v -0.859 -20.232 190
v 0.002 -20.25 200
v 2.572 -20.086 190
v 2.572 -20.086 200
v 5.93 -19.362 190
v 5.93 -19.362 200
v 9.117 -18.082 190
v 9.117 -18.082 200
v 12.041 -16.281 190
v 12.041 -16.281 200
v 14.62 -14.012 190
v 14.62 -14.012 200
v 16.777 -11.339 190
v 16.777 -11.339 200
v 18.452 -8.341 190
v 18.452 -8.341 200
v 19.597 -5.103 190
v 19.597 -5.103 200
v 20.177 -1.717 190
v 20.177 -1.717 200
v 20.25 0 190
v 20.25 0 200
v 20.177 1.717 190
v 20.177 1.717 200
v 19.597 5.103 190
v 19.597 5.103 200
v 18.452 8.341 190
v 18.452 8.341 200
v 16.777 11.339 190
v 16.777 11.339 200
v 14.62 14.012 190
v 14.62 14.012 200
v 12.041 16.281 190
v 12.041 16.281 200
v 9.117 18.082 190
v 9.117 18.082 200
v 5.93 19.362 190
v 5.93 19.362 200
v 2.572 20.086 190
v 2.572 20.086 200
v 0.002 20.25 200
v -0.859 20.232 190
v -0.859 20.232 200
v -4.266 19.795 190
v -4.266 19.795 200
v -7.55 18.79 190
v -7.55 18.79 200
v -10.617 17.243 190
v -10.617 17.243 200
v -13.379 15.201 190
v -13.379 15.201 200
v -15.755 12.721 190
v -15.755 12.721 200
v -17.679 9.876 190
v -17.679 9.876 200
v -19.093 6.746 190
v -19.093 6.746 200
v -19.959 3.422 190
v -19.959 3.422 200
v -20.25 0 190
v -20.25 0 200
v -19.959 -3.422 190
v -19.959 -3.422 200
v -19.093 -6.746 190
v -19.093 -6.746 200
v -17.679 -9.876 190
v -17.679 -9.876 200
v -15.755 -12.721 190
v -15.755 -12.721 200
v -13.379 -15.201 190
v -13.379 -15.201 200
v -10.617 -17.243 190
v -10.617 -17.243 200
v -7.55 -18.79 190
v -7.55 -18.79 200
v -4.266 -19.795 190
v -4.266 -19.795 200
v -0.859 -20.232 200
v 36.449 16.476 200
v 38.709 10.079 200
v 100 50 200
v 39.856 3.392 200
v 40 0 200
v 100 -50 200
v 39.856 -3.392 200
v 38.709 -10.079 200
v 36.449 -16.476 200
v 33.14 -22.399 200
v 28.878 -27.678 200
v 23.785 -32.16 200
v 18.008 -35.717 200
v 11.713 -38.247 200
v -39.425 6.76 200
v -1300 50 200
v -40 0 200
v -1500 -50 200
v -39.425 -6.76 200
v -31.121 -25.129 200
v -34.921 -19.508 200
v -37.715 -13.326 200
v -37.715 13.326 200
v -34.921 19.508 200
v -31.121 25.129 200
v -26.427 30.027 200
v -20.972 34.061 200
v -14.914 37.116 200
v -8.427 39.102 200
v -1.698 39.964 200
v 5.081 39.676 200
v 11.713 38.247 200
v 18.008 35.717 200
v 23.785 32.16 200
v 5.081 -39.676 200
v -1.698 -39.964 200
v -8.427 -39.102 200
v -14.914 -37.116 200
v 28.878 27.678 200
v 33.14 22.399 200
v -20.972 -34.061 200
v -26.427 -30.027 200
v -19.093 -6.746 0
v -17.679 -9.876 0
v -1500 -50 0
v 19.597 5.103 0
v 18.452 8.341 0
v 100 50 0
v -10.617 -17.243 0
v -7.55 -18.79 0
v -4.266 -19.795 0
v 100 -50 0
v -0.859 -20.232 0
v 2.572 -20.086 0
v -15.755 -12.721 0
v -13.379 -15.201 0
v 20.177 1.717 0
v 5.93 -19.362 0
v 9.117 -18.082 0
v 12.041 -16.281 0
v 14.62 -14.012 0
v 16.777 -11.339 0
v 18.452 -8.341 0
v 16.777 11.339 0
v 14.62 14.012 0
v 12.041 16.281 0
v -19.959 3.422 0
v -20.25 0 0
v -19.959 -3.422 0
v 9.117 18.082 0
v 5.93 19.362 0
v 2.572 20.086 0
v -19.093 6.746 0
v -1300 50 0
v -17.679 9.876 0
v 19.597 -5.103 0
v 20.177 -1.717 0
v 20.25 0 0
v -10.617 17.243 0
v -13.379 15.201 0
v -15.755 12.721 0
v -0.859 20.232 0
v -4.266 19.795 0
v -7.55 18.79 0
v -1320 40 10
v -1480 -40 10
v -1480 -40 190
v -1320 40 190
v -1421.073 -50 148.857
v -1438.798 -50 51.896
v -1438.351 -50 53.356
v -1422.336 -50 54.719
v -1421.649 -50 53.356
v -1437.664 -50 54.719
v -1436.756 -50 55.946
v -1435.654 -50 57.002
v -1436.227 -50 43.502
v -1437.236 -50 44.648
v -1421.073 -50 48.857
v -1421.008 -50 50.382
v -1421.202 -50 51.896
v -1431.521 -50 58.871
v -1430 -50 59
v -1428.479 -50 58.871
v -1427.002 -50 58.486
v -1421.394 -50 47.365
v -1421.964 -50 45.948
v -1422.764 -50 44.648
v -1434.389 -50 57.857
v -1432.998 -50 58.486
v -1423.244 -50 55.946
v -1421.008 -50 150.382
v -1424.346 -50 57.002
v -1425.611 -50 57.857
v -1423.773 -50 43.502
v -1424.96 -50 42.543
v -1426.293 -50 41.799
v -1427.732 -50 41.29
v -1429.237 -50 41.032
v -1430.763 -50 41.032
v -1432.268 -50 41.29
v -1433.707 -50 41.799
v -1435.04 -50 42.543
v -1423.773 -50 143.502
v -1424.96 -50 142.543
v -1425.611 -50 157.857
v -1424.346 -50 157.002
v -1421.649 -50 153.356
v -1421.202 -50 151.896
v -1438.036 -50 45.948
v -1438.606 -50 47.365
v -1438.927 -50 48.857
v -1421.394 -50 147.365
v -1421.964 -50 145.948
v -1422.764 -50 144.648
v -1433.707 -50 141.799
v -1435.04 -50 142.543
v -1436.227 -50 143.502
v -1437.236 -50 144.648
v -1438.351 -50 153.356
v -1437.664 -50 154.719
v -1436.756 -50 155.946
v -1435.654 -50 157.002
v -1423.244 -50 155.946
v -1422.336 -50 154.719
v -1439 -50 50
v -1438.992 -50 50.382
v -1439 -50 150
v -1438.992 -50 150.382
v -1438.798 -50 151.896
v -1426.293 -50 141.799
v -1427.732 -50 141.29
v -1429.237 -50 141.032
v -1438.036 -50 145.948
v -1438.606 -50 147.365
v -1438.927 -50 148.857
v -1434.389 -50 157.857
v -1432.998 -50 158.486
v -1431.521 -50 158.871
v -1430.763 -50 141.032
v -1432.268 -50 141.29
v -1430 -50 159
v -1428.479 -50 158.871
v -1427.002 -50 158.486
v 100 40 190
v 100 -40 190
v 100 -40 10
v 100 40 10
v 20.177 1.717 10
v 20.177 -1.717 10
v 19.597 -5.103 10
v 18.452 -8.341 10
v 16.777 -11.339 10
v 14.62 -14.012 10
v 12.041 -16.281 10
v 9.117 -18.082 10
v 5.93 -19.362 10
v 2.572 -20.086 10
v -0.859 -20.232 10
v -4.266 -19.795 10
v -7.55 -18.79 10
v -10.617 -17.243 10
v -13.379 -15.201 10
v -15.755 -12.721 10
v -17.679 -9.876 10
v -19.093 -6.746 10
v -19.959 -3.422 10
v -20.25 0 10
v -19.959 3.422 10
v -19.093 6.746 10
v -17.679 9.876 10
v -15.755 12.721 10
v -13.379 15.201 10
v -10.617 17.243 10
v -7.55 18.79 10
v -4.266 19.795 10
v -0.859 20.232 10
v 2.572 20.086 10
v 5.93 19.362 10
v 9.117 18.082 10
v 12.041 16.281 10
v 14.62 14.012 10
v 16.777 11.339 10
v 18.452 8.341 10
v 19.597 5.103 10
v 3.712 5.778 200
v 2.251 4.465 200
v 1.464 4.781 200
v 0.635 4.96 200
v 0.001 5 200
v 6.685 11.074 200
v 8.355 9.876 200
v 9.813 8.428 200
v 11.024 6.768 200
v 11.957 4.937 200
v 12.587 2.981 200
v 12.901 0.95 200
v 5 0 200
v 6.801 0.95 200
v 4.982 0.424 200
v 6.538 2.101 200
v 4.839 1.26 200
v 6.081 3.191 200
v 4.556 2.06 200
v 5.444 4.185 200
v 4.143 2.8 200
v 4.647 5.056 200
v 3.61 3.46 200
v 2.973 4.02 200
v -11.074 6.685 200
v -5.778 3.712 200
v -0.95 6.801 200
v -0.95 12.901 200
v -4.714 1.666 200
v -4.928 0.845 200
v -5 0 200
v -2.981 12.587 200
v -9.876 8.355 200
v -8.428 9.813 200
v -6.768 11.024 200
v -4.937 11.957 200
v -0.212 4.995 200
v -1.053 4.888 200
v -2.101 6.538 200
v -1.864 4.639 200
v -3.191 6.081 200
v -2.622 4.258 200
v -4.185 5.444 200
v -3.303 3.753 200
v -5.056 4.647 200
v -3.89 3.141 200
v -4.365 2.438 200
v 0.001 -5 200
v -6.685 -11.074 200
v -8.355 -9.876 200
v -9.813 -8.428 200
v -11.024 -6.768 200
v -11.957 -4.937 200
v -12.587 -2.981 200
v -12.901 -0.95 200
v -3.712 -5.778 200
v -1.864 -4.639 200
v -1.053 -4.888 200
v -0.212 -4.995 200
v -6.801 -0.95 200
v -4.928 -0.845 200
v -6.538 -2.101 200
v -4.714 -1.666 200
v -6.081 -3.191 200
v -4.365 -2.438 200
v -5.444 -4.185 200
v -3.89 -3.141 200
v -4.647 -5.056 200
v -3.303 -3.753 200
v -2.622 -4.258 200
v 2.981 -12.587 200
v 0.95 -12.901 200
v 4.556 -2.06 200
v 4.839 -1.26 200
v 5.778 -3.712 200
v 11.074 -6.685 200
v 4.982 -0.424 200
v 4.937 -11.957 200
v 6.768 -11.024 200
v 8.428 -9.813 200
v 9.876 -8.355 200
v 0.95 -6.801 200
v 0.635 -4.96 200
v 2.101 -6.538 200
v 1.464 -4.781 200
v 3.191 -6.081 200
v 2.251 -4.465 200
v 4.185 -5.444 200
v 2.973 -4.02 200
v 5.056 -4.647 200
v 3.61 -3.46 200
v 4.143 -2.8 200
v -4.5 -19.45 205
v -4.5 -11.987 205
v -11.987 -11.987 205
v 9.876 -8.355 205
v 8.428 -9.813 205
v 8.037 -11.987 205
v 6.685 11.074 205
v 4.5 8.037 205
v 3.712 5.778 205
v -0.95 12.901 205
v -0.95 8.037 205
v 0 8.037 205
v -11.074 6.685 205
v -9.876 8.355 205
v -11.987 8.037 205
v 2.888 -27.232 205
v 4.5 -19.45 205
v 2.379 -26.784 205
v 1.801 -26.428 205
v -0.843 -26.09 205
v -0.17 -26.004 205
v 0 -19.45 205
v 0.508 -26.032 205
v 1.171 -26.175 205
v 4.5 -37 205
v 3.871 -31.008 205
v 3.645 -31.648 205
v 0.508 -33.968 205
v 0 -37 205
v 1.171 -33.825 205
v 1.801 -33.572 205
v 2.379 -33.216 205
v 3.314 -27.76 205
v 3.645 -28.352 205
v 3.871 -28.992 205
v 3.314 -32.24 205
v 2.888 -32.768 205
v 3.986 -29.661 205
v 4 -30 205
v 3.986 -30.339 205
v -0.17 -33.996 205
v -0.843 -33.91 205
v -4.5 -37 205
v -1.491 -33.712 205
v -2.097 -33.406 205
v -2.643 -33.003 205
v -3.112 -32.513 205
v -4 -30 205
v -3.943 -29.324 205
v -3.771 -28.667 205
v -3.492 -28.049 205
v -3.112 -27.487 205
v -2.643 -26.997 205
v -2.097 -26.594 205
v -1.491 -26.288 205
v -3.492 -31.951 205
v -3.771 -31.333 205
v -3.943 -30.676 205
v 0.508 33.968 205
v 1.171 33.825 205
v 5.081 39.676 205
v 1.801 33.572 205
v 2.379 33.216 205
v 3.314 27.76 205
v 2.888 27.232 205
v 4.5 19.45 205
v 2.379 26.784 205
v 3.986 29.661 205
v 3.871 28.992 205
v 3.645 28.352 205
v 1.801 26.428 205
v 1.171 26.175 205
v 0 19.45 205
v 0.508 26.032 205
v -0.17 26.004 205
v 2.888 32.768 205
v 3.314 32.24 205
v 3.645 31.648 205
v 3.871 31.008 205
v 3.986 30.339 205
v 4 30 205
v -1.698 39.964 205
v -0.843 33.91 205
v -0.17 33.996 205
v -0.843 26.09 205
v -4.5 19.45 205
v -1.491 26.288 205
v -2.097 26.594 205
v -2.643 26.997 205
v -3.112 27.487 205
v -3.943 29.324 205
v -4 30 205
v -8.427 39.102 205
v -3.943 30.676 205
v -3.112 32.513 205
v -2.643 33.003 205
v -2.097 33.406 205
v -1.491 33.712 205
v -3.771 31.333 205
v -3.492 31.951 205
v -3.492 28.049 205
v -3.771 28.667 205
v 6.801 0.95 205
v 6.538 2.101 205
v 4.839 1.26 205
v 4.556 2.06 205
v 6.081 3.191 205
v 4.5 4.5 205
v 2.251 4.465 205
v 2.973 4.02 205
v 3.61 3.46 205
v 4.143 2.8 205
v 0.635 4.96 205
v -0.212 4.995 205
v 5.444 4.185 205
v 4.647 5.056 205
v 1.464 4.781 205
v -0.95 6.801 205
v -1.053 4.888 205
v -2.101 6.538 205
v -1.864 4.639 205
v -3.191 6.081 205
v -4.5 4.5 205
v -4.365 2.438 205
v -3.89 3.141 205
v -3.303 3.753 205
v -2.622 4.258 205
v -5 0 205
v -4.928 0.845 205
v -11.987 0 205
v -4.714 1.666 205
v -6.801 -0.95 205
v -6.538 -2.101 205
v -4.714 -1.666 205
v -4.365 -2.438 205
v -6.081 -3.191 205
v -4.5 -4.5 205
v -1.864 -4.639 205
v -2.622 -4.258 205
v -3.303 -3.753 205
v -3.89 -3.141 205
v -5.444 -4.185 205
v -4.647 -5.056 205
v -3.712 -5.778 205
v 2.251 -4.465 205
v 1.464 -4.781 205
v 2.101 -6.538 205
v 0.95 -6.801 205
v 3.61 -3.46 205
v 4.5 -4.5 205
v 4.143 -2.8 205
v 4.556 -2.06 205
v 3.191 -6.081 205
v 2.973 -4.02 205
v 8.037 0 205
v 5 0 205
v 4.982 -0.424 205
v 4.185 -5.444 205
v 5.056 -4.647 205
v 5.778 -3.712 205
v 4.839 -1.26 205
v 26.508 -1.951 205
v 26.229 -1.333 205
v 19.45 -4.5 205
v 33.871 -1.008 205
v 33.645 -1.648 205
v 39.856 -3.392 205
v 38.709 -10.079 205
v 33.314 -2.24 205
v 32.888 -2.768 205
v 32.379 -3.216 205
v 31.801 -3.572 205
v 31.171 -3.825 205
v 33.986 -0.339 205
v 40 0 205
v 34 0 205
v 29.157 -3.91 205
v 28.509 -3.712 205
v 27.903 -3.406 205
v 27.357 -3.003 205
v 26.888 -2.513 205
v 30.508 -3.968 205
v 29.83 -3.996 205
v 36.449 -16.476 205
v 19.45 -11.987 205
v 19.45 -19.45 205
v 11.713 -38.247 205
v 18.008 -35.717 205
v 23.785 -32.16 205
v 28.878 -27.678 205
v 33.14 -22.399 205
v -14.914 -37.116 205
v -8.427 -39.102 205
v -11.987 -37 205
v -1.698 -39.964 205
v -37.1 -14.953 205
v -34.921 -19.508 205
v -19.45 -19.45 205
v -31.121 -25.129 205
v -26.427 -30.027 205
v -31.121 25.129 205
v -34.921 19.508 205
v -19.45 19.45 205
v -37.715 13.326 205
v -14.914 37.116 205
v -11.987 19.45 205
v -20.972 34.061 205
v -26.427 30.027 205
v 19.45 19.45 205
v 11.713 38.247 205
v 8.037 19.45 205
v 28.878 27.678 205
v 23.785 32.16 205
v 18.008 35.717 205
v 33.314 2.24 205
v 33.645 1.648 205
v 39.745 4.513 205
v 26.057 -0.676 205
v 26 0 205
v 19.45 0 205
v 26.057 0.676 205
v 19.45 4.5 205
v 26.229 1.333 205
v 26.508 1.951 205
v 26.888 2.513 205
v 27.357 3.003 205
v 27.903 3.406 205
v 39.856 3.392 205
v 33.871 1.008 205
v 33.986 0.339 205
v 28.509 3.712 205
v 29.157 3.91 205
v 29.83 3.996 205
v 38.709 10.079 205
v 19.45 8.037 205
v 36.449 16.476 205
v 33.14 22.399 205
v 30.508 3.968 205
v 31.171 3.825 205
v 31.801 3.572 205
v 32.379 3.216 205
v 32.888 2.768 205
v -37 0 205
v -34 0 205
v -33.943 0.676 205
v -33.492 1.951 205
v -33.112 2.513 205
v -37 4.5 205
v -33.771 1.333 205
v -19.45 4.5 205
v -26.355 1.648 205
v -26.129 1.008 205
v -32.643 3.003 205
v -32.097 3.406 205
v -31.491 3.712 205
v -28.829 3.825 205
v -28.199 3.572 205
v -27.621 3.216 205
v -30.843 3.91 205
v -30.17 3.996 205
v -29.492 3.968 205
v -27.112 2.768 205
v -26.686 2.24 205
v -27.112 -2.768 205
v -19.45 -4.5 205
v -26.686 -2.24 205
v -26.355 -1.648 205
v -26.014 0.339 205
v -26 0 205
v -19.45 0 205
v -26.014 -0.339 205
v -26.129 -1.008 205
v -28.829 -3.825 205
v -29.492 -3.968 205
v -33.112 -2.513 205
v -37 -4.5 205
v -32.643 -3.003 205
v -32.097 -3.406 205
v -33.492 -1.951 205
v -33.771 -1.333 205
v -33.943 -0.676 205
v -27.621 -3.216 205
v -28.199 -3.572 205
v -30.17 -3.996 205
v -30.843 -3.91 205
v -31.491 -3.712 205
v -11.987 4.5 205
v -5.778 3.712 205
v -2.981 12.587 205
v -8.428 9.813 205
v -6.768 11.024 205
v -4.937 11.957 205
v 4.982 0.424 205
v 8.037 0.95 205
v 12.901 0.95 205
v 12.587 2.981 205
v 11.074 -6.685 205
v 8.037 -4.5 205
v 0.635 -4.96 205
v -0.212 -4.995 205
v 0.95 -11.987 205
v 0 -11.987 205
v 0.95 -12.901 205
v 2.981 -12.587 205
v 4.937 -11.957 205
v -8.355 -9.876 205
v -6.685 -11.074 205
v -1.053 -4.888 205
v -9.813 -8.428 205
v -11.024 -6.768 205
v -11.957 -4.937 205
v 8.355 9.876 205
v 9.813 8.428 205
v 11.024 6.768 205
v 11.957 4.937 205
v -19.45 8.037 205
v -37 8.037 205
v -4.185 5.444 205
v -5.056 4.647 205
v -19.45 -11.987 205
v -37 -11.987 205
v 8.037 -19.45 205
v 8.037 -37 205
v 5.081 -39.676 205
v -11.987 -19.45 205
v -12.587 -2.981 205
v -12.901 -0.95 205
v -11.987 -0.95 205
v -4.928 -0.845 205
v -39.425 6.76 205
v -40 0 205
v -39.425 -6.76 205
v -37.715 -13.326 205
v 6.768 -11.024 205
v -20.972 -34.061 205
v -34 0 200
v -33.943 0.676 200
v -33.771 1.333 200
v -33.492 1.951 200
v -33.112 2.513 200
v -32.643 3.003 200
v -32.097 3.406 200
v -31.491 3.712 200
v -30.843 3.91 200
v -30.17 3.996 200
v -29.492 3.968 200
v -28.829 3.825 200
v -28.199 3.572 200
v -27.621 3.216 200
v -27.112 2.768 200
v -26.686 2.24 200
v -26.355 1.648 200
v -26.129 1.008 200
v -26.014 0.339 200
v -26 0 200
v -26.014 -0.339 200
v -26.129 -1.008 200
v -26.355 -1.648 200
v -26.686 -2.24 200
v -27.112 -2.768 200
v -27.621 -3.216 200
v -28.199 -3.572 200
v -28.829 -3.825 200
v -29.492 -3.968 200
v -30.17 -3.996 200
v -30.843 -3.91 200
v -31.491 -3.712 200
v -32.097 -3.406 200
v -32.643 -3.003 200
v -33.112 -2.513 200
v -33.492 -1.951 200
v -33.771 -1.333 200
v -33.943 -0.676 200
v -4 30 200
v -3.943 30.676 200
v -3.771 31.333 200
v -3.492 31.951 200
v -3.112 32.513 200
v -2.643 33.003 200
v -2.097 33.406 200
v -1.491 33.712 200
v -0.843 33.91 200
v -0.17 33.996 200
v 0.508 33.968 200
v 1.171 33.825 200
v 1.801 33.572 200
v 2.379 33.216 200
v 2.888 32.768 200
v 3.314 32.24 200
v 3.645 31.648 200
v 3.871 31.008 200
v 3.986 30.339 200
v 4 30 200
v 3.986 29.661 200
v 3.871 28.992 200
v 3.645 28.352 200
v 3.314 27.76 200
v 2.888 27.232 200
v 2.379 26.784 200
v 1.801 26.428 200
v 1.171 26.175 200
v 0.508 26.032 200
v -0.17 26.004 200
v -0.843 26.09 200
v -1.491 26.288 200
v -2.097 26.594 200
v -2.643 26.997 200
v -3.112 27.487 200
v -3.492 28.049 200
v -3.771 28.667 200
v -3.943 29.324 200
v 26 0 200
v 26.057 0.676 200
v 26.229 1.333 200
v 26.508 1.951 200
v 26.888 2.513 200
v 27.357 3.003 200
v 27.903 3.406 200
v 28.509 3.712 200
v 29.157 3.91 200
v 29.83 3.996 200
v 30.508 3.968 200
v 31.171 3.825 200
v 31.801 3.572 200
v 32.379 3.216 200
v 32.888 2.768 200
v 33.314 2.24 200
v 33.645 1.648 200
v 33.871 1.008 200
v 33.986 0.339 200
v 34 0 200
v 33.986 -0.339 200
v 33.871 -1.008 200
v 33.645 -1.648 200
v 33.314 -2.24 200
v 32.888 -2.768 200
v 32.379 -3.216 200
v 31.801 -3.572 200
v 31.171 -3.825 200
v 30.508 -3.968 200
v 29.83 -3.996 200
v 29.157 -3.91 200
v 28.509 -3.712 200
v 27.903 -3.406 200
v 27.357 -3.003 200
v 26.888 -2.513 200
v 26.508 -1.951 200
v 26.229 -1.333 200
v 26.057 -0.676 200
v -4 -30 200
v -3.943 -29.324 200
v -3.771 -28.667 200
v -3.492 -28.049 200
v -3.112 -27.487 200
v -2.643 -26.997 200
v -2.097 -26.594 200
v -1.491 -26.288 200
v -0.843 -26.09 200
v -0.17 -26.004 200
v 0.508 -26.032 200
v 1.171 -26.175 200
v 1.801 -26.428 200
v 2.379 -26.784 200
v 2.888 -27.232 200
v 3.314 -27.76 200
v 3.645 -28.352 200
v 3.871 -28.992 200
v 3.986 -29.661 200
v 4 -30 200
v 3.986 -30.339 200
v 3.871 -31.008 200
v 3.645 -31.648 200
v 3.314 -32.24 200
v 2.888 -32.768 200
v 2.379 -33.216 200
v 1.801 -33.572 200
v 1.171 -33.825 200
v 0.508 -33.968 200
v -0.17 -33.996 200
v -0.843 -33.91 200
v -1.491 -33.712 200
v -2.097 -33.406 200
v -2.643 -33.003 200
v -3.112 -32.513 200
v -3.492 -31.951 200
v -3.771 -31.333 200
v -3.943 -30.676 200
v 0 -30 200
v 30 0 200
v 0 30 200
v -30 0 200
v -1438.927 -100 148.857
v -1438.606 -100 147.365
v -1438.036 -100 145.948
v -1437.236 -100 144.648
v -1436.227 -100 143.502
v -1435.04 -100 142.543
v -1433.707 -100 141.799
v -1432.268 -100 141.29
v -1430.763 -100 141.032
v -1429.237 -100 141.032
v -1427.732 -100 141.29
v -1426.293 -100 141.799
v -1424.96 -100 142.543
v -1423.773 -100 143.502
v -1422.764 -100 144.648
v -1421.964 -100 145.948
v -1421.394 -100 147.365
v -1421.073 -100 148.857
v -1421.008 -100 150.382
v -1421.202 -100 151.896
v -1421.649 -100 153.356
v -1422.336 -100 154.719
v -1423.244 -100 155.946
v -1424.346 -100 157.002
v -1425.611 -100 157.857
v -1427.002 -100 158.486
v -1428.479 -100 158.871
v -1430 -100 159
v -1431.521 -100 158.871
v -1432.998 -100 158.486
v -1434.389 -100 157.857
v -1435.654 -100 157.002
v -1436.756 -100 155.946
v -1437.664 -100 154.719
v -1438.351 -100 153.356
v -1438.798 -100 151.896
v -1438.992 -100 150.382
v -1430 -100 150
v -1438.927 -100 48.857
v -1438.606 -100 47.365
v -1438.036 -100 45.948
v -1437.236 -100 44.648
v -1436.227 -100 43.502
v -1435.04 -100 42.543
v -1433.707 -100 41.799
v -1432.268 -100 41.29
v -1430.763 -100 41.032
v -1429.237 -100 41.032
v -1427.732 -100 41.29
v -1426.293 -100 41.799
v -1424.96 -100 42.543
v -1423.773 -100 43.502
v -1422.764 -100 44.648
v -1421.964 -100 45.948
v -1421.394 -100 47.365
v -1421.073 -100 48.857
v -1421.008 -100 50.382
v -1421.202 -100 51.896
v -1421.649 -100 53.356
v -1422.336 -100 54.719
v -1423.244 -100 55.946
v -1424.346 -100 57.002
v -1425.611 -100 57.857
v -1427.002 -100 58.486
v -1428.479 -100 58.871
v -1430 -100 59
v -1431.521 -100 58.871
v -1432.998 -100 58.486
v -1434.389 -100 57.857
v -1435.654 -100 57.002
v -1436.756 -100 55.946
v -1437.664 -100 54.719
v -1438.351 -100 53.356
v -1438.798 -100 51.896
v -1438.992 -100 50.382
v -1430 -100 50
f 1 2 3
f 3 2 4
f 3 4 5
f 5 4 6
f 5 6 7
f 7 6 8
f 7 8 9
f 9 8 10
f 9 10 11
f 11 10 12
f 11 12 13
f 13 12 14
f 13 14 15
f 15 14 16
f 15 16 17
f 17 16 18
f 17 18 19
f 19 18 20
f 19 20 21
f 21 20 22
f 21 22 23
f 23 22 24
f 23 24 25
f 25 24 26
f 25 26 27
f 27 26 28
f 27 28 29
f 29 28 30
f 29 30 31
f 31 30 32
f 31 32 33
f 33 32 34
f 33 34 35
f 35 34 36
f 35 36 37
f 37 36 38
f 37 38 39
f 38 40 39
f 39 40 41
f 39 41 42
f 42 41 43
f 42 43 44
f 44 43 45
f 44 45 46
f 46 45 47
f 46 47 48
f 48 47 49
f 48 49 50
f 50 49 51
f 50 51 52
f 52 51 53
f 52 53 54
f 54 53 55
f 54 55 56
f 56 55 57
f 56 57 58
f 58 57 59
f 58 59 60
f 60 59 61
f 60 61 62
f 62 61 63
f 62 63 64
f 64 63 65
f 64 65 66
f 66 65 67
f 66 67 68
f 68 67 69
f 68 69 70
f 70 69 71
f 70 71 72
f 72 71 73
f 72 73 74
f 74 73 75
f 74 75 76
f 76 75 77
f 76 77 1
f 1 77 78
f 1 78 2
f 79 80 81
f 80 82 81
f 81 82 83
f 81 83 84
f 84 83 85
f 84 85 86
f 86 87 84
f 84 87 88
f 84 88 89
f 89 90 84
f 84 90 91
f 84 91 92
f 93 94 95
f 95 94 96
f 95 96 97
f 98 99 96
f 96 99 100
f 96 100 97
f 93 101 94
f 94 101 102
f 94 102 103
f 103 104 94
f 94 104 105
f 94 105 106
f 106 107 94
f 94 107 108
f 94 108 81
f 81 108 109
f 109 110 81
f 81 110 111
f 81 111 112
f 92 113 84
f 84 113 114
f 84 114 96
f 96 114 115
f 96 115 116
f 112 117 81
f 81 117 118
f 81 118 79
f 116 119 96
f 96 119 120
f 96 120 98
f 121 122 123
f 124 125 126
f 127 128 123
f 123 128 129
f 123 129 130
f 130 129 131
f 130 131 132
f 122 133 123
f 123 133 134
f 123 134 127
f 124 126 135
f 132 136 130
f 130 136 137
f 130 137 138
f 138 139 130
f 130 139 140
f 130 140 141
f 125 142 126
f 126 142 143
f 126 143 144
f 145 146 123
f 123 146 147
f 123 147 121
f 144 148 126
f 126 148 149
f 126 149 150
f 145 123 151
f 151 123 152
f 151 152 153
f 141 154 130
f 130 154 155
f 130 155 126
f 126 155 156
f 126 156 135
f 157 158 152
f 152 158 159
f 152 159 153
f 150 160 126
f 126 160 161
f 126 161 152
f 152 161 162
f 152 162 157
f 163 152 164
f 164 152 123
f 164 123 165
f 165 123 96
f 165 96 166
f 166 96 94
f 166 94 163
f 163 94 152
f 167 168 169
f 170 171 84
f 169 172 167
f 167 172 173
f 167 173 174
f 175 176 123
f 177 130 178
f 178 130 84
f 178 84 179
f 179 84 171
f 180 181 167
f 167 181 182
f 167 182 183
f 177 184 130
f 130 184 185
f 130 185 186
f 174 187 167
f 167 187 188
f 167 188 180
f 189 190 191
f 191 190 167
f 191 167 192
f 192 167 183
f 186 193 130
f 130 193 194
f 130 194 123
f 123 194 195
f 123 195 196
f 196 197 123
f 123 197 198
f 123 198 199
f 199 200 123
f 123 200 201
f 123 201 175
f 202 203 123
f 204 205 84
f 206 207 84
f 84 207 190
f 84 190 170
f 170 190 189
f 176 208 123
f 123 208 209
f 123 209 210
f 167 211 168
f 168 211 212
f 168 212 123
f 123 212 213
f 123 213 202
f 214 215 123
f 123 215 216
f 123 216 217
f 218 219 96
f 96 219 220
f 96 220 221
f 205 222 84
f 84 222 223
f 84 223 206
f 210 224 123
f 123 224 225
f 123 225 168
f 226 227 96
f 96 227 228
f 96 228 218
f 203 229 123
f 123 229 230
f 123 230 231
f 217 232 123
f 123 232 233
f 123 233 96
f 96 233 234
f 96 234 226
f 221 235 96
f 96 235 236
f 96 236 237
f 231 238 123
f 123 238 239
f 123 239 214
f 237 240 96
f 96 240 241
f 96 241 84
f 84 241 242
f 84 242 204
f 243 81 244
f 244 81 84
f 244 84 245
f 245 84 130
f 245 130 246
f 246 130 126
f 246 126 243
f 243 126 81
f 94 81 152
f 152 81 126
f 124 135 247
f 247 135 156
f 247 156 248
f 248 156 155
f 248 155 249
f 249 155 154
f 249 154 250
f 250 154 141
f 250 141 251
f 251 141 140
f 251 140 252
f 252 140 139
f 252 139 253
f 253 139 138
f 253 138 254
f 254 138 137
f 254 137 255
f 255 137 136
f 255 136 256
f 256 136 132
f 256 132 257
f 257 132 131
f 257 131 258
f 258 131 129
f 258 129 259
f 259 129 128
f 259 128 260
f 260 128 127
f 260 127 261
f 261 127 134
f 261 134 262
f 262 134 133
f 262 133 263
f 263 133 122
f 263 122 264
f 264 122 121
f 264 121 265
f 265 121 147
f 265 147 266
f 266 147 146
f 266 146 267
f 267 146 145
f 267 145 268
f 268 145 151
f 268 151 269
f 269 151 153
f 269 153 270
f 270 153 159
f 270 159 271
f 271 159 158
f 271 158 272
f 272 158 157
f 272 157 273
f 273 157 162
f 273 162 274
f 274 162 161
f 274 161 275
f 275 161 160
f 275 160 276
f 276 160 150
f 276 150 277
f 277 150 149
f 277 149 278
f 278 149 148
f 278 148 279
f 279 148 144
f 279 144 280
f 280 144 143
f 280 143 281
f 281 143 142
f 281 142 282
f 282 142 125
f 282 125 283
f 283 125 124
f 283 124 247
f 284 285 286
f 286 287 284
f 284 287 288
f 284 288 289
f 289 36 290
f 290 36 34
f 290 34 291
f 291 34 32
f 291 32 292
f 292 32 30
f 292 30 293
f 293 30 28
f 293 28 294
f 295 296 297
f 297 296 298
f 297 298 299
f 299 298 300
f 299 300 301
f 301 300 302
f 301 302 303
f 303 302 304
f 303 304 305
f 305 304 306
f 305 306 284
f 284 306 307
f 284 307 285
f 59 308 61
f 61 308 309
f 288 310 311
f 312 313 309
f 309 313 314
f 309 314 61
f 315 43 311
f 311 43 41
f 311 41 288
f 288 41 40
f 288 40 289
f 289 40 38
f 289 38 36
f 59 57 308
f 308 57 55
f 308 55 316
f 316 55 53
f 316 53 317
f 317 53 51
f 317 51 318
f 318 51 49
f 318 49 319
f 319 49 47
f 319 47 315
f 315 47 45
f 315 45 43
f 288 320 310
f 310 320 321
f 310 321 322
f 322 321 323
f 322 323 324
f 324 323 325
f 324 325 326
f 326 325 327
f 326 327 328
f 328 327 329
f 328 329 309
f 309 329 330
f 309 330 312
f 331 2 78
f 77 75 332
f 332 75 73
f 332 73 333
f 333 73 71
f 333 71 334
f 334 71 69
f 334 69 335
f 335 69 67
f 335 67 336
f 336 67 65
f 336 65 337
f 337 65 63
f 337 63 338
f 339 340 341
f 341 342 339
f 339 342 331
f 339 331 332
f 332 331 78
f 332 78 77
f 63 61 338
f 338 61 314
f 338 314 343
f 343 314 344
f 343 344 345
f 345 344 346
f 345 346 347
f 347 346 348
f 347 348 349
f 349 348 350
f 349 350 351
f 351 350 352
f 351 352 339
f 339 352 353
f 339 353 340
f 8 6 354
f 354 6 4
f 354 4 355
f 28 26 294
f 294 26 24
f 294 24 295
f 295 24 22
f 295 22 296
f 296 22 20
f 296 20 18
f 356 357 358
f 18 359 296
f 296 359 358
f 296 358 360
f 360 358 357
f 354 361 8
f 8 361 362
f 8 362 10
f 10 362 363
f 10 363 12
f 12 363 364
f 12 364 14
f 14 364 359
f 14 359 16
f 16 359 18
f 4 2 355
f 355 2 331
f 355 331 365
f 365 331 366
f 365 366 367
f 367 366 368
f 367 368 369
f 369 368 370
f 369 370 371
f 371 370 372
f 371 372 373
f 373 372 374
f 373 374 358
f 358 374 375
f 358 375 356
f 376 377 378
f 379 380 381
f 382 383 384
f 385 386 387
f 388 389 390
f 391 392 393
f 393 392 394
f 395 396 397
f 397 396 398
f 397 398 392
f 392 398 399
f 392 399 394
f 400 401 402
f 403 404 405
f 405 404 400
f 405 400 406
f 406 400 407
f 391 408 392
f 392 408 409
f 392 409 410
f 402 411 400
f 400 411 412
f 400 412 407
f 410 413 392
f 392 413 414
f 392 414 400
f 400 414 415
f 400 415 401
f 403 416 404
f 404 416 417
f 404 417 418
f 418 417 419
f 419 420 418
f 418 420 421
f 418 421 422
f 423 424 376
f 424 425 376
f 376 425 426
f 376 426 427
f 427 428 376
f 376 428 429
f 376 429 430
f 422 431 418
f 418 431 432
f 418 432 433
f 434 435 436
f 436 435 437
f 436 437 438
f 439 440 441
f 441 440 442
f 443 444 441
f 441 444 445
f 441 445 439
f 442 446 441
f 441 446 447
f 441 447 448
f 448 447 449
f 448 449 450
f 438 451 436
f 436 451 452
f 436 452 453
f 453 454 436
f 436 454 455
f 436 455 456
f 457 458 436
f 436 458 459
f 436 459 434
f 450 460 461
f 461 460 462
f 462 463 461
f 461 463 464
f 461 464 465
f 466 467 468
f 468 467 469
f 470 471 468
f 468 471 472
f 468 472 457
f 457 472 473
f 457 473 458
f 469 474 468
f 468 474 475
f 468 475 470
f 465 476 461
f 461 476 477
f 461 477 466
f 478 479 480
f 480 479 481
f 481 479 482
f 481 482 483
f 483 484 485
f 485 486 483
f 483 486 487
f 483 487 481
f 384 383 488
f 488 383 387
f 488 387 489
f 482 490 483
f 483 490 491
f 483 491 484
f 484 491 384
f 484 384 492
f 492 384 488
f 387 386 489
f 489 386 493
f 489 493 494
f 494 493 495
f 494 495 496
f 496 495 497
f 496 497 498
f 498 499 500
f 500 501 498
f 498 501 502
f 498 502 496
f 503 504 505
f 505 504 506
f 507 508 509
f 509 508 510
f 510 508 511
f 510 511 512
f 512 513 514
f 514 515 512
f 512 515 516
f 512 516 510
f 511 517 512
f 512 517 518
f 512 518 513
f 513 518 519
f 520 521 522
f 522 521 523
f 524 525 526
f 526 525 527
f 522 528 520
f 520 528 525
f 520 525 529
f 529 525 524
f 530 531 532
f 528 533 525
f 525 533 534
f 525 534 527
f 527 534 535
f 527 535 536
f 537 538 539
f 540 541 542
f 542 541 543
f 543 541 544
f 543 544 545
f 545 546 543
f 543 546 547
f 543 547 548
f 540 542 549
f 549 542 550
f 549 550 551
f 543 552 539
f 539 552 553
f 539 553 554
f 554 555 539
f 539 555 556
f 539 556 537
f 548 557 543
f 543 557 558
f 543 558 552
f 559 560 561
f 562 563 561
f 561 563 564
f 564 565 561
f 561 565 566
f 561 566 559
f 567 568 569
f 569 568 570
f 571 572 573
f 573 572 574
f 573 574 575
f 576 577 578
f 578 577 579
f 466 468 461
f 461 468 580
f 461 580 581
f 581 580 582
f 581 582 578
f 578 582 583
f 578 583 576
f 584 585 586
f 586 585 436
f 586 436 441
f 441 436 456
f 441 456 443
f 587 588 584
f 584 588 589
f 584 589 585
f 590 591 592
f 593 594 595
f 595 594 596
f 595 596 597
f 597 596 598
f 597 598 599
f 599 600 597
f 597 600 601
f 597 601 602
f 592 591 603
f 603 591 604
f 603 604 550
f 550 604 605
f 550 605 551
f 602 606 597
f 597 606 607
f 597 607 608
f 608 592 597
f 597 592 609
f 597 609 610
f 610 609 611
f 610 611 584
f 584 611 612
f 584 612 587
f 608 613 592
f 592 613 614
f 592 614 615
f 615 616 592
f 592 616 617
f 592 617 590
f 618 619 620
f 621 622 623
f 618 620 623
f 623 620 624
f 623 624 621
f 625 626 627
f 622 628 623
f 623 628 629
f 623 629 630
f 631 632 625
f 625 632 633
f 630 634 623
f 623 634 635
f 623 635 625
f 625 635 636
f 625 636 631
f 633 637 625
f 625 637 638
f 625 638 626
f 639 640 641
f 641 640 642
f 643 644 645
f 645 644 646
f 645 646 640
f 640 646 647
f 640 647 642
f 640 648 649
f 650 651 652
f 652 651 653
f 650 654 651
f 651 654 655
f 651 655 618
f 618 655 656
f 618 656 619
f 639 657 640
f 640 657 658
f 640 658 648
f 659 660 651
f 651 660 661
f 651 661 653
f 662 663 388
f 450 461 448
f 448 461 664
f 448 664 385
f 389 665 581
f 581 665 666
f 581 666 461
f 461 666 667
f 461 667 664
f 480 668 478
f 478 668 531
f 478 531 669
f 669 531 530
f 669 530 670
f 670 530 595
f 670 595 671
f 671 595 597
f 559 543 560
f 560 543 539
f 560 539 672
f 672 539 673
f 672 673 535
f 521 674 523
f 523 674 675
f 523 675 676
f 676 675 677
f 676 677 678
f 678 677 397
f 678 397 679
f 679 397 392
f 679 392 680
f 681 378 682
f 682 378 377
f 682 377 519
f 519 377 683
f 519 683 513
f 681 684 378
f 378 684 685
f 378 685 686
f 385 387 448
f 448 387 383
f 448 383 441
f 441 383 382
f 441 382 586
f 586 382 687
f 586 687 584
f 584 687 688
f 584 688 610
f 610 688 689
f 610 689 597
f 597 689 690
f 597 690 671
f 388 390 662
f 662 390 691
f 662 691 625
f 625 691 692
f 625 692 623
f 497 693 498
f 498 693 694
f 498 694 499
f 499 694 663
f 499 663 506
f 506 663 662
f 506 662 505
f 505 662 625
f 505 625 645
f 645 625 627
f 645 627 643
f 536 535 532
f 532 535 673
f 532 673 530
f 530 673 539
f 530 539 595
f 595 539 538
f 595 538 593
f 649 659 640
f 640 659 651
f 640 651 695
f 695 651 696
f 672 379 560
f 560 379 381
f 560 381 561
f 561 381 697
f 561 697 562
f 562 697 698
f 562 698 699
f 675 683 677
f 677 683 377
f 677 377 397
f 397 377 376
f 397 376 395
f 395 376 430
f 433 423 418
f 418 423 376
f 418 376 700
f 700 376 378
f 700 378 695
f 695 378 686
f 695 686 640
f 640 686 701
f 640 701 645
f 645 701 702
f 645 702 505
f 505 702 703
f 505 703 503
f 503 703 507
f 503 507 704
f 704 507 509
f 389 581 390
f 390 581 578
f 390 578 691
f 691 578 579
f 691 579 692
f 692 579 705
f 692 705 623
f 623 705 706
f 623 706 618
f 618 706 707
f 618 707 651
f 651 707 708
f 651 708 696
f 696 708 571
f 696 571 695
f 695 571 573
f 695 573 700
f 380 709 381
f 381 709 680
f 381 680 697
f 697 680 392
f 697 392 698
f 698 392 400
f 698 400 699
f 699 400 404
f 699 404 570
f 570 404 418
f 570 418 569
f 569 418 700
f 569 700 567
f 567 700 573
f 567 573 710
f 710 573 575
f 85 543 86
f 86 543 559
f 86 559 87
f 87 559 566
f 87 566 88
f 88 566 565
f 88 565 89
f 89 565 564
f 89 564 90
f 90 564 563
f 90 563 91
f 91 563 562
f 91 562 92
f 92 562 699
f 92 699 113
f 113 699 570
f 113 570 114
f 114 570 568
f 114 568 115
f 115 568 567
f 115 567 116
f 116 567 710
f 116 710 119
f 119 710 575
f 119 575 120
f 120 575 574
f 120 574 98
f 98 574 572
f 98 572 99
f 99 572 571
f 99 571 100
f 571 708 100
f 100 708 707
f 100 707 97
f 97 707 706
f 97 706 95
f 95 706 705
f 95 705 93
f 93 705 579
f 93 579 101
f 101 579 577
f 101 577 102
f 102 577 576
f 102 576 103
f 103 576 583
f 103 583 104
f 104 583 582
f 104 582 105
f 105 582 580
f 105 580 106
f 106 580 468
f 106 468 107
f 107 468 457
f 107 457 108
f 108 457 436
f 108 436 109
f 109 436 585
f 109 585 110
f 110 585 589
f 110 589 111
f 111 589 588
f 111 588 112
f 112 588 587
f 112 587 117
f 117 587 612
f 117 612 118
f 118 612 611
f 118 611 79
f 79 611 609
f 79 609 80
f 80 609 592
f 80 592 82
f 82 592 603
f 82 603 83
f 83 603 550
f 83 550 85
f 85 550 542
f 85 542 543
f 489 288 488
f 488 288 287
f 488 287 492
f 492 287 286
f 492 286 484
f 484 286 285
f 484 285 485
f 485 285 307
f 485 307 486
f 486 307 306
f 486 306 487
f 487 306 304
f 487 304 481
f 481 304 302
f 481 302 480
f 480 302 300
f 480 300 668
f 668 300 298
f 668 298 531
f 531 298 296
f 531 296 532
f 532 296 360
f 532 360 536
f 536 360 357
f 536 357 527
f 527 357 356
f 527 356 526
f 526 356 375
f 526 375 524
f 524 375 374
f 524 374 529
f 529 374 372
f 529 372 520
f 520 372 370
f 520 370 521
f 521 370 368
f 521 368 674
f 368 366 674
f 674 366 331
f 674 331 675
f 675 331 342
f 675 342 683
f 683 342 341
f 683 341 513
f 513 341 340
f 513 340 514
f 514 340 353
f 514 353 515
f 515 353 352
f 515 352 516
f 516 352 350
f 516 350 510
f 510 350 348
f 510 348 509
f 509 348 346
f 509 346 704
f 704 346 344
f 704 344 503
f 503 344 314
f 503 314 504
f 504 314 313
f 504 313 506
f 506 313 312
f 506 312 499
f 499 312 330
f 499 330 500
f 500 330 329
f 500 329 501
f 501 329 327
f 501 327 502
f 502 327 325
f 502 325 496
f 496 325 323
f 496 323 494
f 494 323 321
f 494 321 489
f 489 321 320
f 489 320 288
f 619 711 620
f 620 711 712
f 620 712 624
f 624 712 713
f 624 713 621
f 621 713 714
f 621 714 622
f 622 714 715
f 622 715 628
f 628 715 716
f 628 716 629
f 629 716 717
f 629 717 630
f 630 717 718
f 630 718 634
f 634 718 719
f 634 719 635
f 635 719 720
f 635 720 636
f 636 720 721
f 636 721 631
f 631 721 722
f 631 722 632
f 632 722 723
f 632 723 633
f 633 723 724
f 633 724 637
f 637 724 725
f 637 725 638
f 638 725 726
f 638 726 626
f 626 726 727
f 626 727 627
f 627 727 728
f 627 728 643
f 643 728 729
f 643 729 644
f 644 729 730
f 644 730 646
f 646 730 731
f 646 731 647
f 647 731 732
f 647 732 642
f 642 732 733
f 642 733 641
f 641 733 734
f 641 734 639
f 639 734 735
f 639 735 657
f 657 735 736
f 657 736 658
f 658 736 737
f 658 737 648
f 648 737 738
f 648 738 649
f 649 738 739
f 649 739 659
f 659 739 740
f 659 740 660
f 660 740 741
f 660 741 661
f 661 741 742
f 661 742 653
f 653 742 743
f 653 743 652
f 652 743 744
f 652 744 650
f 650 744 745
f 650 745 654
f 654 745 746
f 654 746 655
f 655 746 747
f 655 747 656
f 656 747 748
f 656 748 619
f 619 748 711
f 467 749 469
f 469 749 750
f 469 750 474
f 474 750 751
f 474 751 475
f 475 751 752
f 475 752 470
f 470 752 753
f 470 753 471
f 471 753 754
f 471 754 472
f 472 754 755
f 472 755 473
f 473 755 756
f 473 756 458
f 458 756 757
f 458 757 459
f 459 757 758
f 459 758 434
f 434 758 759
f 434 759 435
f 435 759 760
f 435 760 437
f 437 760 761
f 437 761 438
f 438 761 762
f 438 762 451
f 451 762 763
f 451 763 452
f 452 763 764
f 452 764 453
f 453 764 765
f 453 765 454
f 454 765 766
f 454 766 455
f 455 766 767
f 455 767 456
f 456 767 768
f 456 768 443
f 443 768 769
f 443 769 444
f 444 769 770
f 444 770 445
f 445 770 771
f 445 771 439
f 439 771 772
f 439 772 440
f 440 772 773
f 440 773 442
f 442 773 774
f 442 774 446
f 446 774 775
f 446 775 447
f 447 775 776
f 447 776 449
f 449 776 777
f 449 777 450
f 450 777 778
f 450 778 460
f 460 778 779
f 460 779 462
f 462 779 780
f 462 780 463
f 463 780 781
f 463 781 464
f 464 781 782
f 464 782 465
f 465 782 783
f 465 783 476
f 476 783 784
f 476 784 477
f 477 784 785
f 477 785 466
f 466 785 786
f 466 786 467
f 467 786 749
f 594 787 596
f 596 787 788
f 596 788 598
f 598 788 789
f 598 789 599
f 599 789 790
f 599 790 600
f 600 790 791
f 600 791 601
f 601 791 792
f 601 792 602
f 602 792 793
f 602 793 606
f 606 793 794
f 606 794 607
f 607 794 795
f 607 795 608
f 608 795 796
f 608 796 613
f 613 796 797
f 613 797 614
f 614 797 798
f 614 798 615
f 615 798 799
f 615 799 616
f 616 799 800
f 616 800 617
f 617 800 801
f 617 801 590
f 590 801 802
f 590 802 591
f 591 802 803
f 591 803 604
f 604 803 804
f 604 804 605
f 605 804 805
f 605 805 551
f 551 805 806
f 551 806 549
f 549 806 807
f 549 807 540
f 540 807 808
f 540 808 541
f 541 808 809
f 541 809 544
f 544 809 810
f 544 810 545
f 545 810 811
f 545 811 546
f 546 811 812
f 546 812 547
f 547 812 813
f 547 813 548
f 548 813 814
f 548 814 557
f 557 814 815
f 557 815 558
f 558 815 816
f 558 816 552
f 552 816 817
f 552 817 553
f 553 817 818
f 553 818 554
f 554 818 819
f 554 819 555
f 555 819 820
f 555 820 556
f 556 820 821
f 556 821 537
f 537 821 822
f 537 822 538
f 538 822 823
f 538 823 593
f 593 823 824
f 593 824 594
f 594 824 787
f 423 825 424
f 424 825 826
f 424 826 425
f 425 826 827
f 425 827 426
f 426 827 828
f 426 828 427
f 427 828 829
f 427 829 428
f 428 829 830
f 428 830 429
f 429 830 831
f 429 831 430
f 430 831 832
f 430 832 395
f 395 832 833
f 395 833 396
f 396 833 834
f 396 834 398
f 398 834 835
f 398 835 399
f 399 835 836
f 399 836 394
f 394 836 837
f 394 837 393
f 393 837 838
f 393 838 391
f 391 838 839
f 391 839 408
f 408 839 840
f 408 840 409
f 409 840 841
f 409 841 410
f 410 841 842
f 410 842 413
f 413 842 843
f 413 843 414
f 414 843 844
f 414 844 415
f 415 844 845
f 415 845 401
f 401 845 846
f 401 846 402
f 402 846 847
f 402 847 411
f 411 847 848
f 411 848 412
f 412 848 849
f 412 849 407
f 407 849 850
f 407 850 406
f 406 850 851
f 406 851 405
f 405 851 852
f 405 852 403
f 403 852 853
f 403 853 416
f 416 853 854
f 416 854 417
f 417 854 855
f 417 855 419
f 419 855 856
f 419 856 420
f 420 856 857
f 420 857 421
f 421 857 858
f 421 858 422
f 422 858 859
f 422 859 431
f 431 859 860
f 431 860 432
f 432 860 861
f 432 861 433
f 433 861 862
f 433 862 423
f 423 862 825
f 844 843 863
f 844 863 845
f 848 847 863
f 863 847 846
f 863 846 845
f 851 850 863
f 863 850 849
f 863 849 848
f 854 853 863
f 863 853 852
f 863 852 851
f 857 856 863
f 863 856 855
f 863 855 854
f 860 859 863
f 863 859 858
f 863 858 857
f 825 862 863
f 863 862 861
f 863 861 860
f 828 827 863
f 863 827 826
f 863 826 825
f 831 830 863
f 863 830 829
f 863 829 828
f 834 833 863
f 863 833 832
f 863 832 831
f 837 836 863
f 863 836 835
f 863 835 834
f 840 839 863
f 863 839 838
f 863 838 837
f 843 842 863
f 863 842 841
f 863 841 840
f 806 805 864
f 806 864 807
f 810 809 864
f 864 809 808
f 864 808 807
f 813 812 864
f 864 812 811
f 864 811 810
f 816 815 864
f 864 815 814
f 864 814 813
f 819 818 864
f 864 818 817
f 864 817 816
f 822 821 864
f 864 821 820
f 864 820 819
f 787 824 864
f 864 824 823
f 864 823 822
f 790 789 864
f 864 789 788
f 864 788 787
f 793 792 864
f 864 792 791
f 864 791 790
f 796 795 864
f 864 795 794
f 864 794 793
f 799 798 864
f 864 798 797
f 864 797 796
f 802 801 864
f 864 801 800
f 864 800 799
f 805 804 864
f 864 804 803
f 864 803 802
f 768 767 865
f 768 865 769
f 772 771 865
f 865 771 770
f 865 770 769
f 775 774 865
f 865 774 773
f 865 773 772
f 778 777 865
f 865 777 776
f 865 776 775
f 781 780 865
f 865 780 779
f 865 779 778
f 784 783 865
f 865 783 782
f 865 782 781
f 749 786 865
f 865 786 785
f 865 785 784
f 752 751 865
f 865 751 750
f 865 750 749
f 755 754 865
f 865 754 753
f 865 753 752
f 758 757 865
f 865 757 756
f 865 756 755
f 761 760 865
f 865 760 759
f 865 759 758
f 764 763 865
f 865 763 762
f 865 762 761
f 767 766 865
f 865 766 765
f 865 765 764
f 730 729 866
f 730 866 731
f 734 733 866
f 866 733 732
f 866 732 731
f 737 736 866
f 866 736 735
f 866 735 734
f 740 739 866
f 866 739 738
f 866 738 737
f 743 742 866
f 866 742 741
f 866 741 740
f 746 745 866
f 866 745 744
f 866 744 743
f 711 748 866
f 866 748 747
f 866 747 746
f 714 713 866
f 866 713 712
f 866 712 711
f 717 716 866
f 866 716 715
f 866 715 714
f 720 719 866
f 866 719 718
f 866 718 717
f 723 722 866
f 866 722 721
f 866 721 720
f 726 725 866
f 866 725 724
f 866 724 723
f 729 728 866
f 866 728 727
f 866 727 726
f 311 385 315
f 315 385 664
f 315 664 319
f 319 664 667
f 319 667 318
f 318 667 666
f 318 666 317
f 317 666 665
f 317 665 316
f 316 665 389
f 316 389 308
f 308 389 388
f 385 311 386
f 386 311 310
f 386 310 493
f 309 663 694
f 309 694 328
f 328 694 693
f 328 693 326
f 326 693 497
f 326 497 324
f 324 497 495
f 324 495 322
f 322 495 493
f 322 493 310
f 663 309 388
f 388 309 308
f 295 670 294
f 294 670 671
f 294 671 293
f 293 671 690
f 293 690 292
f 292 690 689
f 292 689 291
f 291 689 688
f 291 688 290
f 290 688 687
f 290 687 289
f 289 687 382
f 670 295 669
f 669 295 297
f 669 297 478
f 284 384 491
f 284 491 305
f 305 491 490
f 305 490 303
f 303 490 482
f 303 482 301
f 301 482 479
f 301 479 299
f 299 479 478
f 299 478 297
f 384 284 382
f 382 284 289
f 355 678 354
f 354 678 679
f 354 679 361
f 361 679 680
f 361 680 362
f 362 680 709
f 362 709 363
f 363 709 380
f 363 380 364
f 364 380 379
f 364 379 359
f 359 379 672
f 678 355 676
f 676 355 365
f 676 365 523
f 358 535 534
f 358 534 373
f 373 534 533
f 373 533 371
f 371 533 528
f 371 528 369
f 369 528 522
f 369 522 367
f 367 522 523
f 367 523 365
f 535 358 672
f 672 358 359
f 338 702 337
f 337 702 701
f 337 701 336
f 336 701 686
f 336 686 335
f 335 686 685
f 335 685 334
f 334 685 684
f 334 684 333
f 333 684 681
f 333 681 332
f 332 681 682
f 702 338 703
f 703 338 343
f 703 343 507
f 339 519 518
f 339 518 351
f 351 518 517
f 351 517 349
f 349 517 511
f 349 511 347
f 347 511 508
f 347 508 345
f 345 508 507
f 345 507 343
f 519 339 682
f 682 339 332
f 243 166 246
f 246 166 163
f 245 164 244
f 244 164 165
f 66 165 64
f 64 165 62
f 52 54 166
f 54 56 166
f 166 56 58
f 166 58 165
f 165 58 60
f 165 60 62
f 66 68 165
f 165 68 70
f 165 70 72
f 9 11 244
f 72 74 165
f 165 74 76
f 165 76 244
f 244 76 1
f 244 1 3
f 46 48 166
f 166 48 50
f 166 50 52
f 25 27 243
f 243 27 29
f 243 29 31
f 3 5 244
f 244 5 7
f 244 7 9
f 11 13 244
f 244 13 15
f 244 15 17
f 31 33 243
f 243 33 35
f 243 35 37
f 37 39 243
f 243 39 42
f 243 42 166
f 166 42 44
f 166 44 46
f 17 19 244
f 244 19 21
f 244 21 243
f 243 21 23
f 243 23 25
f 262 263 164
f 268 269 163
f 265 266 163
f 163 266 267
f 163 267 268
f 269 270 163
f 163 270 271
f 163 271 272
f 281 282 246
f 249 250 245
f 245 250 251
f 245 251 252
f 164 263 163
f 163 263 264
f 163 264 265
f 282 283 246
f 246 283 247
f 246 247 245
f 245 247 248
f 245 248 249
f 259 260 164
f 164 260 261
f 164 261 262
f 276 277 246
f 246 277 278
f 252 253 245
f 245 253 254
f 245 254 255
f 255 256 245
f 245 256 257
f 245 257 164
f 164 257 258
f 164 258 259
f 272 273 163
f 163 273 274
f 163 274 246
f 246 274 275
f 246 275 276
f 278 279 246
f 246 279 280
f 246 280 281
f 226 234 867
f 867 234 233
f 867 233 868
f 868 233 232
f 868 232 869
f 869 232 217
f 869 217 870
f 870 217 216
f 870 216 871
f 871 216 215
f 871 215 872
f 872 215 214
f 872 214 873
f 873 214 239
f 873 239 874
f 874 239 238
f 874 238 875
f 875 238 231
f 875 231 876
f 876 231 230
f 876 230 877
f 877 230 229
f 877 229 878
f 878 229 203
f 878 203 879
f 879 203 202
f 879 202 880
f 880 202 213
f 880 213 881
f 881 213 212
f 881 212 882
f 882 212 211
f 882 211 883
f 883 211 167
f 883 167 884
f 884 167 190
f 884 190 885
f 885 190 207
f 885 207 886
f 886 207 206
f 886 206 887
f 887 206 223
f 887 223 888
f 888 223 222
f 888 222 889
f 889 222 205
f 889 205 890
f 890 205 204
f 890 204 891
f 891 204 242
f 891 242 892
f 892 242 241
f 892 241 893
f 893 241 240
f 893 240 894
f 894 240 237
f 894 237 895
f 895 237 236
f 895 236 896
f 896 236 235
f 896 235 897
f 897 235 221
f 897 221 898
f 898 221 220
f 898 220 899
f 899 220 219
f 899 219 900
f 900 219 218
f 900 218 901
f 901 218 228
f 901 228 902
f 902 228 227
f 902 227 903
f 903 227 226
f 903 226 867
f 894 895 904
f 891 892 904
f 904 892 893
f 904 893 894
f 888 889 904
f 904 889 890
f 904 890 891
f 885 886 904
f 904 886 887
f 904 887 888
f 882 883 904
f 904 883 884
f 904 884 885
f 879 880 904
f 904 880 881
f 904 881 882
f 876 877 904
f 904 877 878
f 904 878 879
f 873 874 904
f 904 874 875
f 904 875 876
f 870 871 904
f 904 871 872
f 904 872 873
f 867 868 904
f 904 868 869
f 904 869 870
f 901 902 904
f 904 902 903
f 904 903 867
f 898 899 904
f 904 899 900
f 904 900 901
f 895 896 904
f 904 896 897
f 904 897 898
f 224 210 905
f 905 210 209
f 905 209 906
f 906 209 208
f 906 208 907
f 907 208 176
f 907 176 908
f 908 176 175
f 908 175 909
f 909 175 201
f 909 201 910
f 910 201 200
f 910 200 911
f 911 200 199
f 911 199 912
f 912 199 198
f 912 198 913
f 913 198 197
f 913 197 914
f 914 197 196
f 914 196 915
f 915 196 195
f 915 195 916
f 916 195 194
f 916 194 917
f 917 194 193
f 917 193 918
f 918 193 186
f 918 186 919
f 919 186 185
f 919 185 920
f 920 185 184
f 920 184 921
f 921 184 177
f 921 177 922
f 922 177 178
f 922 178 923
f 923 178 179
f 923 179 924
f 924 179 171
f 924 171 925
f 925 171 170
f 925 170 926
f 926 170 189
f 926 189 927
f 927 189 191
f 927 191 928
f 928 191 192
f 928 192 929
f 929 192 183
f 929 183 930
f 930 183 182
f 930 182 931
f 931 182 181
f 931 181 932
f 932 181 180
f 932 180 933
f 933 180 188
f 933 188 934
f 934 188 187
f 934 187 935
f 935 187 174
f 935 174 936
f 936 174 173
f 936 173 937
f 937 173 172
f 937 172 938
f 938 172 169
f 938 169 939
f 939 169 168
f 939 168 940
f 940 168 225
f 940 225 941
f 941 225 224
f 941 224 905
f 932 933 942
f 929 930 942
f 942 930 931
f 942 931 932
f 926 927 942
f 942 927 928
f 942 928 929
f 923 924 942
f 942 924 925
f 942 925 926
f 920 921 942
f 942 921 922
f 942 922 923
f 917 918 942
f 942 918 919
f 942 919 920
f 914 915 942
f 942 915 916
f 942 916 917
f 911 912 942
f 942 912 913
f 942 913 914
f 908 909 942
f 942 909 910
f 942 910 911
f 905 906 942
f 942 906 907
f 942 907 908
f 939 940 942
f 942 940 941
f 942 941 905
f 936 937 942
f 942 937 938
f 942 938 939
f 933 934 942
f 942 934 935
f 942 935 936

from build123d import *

# Parameters (mm, degrees)
SKETCH2_R               = 20.25
BOSS_EXTRUDE1_DEPTH     = 200
SKETCH3_R               = 40
SKETCH3_R_2             = 5
SKETCH3_R_3             = 4
BOSS_EXTRUDE2_DEPTH     = 5
CUT_EXTRUDE5_DEPTH      = 6
CUT_EXTRUDE5_DEPTH_BACK = 201
SKETCH5_W               = 180
SKETCH5_H               = 80
CUT_EXTRUDE6_DEPTH      = 1601
SKETCH6_R               = 9
BOSS_EXTRUDE3_DEPTH     = 60


with BuildPart() as part:
    # Sketch2 → Boss-Extrude1 (new body)
    with BuildSketch(Plane.XY):
        Polygon((100, 0), (100, -50), (-1500, -50), (-1300, 50), (100, 50), align=None)
        Circle(SKETCH2_R, mode=Mode.SUBTRACT)
    extrude(amount=BOSS_EXTRUDE1_DEPTH)

    # Sketch3 → Boss-Extrude2 (add)
    with BuildSketch(Plane.XY.offset(200)):
        Circle(SKETCH3_R)
        Circle(SKETCH3_R_2, mode=Mode.SUBTRACT)
        with Locations((-30, 0)):
            Circle(SKETCH3_R_3, mode=Mode.SUBTRACT)
        with Locations((0, 30)):
            Circle(SKETCH3_R_3, mode=Mode.SUBTRACT)
        with Locations((30, 0)):
            Circle(SKETCH3_R_3, mode=Mode.SUBTRACT)
        with Locations((0, -30)):
            Circle(SKETCH3_R_3, mode=Mode.SUBTRACT)
    extrude(amount=BOSS_EXTRUDE2_DEPTH)

    # Sketch4 → Cut-Extrude5 (cut, two sides)
    with BuildSketch(Plane.XY.offset(200)) as cut_extrude5_sk:
        with BuildLine():
            Line((-0.95, 6.801251402), (-0.95, 12.900595285))
            ThreePointArc((-0.95, 12.900595285), (-6.767664084, 11.023909541), (-11.07399335, 6.685396773))
            Line((-11.07399335, 6.685396773), (-5.777899362, 3.711522544))
            ThreePointArc((-5.777899362, 3.711522544), (-3.701724404, 5.784181625), (-0.95, 6.801251402))
        make_face()
        with BuildLine():
            Line((6.801251402, 0.95), (12.900595285, 0.95))
            ThreePointArc((12.900595285, 0.95), (11.023909541, 6.767664084), (6.685396773, 11.07399335))
            Line((6.685396773, 11.07399335), (3.711522544, 5.777899362))
            ThreePointArc((3.711522544, 5.777899362), (5.784181625, 3.701724404), (6.801251402, 0.95))
        make_face()
        with BuildLine():
            Line((0.95, -6.801251402), (0.95, -12.900595285))
            ThreePointArc((0.95, -12.900595285), (6.767664084, -11.023909541), (11.07399335, -6.685396773))
            Line((11.07399335, -6.685396773), (5.777899362, -3.711522544))
            ThreePointArc((5.777899362, -3.711522544), (3.701724404, -5.784181625), (0.95, -6.801251402))
        make_face()
        with BuildLine():
            Line((-6.801251402, -0.95), (-12.900595285, -0.95))
            ThreePointArc((-12.900595285, -0.95), (-11.023909541, -6.767664084), (-6.685396773, -11.07399335))
            Line((-6.685396773, -11.07399335), (-3.711522544, -5.777899362))
            ThreePointArc((-3.711522544, -5.777899362), (-5.784181625, -3.701724404), (-6.801251402, -0.95))
        make_face()
    extrude(amount=CUT_EXTRUDE5_DEPTH, mode=Mode.SUBTRACT)
    extrude(cut_extrude5_sk.sketch, amount=-CUT_EXTRUDE5_DEPTH_BACK, mode=Mode.SUBTRACT)

    # Sketch5 → Cut-Extrude6 (cut, through all)
    with BuildSketch(Plane(origin=(100, 0, 0), x_dir=(0, 0, -1), z_dir=(1, 0, 0))):
        with Locations((-100, 0)):
            Rectangle(SKETCH5_W, SKETCH5_H)
    extrude(amount=-CUT_EXTRUDE6_DEPTH, mode=Mode.SUBTRACT)

    # Sketch6 → Boss-Extrude3 (add)
    with BuildSketch(Plane(origin=(0, -40, 0), x_dir=(1, 0, 0), z_dir=(0, 1, 0))):
        with Locations((-1430, -150)):
            Circle(SKETCH6_R)
        with Locations((-1430, -50)):
            Circle(SKETCH6_R)
    extrude(amount=-BOSS_EXTRUDE3_DEPTH)


solid = part.part
